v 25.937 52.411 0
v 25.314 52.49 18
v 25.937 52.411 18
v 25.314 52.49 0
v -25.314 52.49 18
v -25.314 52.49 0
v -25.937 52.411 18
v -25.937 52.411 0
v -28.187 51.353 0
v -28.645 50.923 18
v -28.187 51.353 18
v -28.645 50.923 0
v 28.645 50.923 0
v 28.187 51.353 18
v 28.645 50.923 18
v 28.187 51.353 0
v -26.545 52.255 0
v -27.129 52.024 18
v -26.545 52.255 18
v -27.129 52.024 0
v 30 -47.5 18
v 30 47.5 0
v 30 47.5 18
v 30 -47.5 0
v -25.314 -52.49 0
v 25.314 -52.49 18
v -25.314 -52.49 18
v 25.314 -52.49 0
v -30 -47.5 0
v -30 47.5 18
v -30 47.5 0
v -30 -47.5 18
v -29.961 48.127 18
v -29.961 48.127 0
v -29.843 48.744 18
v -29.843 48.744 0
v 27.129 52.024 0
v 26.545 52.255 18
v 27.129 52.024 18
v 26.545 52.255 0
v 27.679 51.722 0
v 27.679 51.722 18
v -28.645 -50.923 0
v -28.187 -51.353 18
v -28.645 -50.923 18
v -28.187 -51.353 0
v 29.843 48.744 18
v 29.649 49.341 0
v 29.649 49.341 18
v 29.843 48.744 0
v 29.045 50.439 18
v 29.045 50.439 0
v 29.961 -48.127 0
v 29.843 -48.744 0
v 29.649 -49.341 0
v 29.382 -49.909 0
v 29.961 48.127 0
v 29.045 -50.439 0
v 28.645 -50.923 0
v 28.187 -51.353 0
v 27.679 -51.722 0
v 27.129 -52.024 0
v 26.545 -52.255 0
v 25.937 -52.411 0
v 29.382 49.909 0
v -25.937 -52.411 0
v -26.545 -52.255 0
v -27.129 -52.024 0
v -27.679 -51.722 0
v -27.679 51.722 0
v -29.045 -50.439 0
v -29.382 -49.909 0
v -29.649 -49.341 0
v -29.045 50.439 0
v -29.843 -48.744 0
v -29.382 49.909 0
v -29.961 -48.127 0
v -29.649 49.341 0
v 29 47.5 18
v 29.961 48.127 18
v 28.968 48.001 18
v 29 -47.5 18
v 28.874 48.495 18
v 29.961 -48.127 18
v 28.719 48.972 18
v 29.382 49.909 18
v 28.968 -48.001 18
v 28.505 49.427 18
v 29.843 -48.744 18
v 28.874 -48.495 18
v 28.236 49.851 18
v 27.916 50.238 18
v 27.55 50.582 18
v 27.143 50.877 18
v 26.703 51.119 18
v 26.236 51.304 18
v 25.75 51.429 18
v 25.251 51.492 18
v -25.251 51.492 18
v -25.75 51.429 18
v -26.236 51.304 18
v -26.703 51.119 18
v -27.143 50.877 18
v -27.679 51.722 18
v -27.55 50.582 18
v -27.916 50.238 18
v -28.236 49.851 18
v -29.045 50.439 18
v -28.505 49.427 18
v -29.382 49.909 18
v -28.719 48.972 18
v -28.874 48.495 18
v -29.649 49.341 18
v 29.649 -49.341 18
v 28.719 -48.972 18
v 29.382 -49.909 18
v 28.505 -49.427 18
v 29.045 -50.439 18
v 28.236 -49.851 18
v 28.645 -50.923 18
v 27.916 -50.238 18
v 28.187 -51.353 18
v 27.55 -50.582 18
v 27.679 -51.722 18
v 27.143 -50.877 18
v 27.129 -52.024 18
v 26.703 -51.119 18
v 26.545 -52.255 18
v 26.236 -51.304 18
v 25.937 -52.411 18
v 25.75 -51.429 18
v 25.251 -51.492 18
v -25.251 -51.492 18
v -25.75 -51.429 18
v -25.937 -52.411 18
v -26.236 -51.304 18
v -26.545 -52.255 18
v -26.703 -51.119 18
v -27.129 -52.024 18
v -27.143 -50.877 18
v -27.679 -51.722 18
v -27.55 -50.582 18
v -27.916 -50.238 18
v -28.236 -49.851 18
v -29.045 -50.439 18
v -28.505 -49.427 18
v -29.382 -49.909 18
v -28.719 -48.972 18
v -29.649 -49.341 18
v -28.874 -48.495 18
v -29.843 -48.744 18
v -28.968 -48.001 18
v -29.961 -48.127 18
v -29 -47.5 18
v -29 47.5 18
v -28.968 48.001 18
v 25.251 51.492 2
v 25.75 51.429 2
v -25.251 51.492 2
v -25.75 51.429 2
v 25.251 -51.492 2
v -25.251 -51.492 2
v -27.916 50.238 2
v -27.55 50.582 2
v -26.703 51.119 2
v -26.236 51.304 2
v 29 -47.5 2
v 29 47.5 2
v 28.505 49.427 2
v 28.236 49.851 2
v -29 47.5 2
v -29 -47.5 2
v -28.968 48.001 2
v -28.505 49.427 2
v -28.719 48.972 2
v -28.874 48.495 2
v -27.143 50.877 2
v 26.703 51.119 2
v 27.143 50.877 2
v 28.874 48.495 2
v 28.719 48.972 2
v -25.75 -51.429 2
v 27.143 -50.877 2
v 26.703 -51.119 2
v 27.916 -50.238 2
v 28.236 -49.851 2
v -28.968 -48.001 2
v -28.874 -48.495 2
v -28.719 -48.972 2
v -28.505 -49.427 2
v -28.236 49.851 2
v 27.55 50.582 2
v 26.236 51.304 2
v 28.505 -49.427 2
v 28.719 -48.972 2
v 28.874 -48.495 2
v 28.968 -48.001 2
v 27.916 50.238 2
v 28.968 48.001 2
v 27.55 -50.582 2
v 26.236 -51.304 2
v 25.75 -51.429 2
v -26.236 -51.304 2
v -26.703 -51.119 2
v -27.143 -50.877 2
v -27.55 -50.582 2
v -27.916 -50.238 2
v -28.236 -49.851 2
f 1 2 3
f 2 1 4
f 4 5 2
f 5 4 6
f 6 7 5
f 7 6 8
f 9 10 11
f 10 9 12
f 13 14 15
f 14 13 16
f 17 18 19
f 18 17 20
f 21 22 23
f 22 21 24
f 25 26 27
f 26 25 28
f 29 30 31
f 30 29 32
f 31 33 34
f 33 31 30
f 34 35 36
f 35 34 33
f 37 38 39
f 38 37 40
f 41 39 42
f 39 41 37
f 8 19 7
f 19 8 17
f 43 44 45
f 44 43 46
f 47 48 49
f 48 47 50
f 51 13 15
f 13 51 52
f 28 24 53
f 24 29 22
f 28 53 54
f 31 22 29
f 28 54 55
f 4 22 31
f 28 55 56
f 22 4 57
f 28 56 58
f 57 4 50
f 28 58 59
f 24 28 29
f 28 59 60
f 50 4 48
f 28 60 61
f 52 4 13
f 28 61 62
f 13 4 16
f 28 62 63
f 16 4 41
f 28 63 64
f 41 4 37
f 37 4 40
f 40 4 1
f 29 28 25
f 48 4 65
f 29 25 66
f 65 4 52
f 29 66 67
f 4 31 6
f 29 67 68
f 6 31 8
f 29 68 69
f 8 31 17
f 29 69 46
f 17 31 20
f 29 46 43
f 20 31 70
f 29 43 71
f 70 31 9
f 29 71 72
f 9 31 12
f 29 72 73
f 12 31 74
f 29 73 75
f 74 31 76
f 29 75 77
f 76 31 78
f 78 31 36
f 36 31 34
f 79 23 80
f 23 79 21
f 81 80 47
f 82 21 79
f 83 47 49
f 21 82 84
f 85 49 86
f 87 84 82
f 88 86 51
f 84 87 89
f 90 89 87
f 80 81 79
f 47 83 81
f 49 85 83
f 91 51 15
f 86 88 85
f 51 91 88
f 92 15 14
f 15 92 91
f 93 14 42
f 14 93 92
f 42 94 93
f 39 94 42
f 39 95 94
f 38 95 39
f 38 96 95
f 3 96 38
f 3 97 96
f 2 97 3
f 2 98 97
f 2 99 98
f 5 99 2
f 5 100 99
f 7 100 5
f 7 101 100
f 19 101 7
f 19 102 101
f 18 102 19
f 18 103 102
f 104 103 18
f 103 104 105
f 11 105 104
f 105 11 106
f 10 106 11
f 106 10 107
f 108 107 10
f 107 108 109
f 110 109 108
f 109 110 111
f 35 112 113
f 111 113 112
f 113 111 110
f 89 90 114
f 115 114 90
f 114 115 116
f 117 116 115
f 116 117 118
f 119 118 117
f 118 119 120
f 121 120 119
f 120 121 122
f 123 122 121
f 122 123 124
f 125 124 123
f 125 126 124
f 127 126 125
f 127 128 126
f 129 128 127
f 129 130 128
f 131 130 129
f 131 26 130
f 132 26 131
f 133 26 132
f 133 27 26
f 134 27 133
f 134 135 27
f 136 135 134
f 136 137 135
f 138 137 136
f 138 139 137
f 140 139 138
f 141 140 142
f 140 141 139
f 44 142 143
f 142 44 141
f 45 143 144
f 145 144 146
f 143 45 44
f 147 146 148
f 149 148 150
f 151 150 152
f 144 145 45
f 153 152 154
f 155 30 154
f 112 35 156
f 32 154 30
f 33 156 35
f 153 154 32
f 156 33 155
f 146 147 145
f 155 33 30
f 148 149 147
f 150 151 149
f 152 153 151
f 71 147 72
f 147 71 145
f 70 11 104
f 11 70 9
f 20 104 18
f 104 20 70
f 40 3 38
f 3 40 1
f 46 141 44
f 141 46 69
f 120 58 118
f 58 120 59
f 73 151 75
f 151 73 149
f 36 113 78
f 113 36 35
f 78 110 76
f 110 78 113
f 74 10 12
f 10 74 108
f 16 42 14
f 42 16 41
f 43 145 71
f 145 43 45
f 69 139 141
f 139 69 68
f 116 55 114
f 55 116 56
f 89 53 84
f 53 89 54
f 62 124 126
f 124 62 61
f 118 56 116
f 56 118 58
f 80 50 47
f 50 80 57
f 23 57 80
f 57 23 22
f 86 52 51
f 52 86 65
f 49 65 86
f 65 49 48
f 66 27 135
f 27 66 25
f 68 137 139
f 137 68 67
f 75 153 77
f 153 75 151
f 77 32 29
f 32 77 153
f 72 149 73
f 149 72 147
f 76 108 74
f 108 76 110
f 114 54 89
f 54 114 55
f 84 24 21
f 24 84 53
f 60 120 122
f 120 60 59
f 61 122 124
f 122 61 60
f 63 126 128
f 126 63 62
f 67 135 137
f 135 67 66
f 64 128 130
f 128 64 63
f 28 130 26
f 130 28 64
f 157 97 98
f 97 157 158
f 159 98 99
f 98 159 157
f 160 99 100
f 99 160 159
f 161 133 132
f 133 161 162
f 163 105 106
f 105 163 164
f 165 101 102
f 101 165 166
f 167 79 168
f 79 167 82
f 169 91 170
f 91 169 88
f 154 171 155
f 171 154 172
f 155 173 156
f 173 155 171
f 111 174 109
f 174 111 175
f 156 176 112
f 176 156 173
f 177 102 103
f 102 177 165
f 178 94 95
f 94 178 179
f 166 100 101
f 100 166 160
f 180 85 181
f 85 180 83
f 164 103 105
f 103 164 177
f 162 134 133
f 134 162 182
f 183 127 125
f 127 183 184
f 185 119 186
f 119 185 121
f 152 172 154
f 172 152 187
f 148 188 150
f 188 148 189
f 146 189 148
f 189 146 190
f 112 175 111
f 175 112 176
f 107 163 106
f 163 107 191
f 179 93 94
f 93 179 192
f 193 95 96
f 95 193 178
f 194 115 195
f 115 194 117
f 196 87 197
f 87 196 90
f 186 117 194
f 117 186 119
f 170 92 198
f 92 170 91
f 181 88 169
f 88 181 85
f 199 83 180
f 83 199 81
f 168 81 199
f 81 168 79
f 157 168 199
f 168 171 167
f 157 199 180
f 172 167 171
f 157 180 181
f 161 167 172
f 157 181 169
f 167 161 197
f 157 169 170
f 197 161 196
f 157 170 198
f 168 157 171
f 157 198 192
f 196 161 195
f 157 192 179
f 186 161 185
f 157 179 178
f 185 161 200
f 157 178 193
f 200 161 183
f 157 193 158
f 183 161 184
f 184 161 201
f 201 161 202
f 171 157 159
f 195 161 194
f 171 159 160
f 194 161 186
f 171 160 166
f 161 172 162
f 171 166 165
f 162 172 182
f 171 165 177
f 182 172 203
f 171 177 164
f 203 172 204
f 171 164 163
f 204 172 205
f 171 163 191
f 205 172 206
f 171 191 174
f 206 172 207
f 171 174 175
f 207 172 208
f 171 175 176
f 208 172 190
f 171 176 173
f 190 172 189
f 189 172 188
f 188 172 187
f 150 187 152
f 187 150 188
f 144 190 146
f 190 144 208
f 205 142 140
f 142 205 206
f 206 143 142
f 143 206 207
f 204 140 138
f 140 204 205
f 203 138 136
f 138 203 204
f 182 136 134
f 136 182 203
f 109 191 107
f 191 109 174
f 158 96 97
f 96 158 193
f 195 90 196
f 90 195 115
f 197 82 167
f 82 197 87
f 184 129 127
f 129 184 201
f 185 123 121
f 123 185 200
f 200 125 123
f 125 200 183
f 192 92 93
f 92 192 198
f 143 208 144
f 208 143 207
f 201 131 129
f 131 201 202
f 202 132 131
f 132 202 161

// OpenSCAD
$fn = 50;


difference() {
	union() {
		hull() {
			translate(v = [-25.0000000000, 47.5000000000, 0]) {
				cylinder(h = 18, r = 5);
			}
			translate(v = [25.0000000000, 47.5000000000, 0]) {
				cylinder(h = 18, r = 5);
			}
			translate(v = [-25.0000000000, -47.5000000000, 0]) {
				cylinder(h = 18, r = 5);
			}
			translate(v = [25.0000000000, -47.5000000000, 0]) {
				cylinder(h = 18, r = 5);
			}
		}
	}
	union() {
		translate(v = [0, 0, 2]) {
			hull() {
				translate(v = [-25.0000000000, 47.5000000000, 0]) {
					cylinder(h = 16, r = 4);
				}
				translate(v = [25.0000000000, 47.5000000000, 0]) {
					cylinder(h = 16, r = 4);
				}
				translate(v = [-25.0000000000, -47.5000000000, 0]) {
					cylinder(h = 16, r = 4);
				}
				translate(v = [25.0000000000, -47.5000000000, 0]) {
					cylinder(h = 16, r = 4);
				}
			}
		}
	}
}
